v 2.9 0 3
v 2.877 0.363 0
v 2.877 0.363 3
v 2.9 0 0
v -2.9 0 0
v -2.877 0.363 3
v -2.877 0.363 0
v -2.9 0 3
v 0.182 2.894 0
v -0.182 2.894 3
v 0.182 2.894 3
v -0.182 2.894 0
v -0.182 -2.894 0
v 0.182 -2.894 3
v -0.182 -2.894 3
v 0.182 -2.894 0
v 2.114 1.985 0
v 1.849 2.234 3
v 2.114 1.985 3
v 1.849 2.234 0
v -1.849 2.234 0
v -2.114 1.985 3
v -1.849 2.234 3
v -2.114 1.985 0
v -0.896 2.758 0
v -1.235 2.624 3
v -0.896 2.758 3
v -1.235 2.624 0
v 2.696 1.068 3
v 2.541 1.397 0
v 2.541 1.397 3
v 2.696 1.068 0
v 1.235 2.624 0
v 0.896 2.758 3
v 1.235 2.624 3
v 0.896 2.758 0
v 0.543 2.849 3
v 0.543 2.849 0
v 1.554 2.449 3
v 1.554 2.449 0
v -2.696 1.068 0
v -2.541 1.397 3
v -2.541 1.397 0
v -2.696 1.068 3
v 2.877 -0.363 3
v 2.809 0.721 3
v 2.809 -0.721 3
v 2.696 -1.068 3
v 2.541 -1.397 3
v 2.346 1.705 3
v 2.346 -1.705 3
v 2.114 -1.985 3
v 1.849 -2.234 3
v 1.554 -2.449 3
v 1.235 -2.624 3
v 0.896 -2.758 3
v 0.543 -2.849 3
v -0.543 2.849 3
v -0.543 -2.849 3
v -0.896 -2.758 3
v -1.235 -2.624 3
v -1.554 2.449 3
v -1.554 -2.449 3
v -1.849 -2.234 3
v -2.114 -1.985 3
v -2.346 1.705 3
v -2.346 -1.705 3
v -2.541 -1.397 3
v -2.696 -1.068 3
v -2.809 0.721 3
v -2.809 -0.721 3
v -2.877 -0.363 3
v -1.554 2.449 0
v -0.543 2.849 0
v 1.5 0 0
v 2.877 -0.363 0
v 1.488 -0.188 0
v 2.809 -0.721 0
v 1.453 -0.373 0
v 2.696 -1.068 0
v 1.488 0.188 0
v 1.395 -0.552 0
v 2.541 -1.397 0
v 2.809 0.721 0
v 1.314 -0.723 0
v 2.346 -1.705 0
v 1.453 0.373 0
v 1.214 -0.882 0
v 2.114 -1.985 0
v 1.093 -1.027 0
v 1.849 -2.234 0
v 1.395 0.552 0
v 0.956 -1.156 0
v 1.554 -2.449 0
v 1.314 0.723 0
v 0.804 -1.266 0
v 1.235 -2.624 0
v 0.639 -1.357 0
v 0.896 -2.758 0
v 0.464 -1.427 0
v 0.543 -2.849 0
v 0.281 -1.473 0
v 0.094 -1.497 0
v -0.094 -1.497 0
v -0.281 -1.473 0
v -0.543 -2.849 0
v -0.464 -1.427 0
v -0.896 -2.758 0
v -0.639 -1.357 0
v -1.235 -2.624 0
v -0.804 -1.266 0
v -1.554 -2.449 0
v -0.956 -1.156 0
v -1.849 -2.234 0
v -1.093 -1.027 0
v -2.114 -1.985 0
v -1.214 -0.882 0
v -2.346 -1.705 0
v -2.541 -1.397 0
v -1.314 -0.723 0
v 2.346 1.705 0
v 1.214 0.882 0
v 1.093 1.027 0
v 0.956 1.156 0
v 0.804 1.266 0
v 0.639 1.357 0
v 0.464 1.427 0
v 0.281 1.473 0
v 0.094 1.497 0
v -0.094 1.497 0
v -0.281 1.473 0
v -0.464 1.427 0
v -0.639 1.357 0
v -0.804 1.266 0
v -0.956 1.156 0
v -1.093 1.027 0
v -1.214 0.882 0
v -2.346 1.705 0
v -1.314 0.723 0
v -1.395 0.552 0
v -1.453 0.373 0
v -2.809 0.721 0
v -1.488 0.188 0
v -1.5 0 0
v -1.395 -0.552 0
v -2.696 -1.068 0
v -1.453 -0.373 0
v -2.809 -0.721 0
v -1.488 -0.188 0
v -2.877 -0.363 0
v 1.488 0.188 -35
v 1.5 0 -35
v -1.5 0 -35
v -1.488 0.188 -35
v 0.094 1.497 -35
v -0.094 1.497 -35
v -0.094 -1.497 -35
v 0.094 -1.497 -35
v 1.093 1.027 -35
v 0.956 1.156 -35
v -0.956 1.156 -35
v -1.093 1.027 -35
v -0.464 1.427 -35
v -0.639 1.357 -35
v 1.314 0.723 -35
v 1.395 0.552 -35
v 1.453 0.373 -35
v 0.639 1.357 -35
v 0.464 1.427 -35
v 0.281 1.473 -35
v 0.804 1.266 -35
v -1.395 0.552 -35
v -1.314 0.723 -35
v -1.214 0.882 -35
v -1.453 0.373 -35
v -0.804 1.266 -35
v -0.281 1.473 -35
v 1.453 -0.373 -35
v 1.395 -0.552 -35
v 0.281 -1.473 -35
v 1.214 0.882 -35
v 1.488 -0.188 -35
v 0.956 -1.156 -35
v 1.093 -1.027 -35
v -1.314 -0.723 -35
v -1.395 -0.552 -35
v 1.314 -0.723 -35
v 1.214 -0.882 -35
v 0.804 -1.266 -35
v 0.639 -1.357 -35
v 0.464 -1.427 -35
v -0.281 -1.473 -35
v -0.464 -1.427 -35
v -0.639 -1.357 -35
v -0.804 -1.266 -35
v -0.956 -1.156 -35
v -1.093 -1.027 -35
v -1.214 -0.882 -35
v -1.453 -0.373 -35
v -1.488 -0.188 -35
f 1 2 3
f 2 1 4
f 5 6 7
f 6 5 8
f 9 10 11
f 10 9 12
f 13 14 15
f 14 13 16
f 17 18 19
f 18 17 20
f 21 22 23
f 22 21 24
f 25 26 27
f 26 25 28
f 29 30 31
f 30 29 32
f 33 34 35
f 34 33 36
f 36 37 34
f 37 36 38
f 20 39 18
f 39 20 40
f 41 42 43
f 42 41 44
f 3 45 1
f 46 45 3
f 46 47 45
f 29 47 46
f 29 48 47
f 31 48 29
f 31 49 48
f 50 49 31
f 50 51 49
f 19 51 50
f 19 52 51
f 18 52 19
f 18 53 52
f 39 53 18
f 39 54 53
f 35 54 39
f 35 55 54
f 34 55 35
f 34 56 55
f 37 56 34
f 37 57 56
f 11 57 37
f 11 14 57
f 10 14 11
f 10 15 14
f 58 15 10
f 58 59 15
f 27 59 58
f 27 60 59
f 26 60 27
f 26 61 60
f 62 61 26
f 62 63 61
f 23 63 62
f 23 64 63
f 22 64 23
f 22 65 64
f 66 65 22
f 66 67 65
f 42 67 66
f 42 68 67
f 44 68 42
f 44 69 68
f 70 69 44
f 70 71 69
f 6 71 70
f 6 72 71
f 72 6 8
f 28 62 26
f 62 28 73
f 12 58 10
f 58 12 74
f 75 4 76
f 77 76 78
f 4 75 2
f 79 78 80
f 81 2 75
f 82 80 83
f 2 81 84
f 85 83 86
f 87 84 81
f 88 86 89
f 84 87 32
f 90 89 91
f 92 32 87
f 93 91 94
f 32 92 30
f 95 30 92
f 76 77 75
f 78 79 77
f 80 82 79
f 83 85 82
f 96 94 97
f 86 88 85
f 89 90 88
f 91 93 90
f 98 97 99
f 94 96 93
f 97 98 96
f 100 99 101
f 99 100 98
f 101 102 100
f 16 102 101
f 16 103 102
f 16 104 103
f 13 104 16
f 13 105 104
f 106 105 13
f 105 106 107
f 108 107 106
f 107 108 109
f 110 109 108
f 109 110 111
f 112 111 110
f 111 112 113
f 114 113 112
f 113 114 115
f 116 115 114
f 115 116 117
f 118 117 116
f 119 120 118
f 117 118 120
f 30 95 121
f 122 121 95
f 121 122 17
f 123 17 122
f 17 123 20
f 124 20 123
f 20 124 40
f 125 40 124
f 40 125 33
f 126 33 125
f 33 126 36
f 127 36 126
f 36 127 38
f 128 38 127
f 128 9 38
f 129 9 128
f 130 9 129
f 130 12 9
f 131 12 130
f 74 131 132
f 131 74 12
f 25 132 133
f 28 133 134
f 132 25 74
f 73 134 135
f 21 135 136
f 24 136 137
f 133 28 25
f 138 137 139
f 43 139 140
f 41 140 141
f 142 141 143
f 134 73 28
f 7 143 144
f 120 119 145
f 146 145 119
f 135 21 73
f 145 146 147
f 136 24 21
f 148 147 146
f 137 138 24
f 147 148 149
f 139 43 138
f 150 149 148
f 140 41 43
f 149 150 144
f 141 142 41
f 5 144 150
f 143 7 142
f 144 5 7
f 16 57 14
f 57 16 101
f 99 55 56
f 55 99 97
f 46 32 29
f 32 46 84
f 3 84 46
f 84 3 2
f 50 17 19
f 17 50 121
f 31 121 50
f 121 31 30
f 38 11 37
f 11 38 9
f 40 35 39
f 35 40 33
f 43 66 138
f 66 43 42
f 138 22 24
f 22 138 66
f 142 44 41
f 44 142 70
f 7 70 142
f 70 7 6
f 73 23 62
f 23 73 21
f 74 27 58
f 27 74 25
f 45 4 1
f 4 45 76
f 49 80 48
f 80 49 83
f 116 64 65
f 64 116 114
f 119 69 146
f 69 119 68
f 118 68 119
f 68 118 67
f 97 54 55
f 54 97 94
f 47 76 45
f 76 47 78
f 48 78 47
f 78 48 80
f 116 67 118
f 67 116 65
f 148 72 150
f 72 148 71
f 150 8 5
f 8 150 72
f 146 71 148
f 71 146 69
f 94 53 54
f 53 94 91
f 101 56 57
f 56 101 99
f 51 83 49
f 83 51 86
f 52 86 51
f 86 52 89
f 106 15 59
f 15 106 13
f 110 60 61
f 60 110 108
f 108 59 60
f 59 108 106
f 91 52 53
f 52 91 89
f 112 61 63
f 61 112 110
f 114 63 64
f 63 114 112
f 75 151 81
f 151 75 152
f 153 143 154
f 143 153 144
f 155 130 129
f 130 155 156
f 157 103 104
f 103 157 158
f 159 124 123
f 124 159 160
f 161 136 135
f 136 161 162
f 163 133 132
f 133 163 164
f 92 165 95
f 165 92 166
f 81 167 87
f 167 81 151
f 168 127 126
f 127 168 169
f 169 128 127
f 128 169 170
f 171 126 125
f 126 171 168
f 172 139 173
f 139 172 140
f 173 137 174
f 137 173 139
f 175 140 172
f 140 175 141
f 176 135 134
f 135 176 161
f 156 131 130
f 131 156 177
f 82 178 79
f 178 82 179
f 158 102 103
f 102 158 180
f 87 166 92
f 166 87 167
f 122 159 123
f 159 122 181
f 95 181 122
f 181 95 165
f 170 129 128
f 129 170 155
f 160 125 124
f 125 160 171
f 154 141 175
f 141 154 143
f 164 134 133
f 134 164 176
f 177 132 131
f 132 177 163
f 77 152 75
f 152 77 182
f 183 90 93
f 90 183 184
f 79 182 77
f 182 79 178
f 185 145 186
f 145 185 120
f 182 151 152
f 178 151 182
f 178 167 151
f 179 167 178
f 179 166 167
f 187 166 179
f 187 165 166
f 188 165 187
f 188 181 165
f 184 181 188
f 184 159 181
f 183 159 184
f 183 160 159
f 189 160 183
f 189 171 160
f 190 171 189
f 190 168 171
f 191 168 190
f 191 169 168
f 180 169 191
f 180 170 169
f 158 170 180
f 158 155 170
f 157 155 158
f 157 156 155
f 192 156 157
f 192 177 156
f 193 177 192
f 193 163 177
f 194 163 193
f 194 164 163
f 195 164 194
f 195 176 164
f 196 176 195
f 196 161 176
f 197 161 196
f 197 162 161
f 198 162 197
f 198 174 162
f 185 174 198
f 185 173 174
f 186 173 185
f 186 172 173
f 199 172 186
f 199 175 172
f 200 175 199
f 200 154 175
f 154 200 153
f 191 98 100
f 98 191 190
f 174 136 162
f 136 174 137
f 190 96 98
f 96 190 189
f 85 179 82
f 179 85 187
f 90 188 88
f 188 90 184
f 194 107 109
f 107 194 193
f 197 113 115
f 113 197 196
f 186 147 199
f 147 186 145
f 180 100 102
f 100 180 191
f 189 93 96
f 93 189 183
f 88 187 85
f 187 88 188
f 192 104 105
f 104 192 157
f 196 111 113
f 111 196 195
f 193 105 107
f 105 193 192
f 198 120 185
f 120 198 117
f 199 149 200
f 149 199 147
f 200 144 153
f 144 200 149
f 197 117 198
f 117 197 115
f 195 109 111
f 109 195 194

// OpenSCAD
$fn = 50;


difference() {
	union() {
		translate(v = [0, 0, 0]) {
			rotate(a = [0, 0, 0]) {
				cylinder(h = 3, r = 2.9000000000);
			}
		}
		translate(v = [0, 0, -35]) {
			rotate(a = [0, 0, 0]) {
				cylinder(h = 35, r = 1.5000000000);
			}
		}
	}
	union();
}
